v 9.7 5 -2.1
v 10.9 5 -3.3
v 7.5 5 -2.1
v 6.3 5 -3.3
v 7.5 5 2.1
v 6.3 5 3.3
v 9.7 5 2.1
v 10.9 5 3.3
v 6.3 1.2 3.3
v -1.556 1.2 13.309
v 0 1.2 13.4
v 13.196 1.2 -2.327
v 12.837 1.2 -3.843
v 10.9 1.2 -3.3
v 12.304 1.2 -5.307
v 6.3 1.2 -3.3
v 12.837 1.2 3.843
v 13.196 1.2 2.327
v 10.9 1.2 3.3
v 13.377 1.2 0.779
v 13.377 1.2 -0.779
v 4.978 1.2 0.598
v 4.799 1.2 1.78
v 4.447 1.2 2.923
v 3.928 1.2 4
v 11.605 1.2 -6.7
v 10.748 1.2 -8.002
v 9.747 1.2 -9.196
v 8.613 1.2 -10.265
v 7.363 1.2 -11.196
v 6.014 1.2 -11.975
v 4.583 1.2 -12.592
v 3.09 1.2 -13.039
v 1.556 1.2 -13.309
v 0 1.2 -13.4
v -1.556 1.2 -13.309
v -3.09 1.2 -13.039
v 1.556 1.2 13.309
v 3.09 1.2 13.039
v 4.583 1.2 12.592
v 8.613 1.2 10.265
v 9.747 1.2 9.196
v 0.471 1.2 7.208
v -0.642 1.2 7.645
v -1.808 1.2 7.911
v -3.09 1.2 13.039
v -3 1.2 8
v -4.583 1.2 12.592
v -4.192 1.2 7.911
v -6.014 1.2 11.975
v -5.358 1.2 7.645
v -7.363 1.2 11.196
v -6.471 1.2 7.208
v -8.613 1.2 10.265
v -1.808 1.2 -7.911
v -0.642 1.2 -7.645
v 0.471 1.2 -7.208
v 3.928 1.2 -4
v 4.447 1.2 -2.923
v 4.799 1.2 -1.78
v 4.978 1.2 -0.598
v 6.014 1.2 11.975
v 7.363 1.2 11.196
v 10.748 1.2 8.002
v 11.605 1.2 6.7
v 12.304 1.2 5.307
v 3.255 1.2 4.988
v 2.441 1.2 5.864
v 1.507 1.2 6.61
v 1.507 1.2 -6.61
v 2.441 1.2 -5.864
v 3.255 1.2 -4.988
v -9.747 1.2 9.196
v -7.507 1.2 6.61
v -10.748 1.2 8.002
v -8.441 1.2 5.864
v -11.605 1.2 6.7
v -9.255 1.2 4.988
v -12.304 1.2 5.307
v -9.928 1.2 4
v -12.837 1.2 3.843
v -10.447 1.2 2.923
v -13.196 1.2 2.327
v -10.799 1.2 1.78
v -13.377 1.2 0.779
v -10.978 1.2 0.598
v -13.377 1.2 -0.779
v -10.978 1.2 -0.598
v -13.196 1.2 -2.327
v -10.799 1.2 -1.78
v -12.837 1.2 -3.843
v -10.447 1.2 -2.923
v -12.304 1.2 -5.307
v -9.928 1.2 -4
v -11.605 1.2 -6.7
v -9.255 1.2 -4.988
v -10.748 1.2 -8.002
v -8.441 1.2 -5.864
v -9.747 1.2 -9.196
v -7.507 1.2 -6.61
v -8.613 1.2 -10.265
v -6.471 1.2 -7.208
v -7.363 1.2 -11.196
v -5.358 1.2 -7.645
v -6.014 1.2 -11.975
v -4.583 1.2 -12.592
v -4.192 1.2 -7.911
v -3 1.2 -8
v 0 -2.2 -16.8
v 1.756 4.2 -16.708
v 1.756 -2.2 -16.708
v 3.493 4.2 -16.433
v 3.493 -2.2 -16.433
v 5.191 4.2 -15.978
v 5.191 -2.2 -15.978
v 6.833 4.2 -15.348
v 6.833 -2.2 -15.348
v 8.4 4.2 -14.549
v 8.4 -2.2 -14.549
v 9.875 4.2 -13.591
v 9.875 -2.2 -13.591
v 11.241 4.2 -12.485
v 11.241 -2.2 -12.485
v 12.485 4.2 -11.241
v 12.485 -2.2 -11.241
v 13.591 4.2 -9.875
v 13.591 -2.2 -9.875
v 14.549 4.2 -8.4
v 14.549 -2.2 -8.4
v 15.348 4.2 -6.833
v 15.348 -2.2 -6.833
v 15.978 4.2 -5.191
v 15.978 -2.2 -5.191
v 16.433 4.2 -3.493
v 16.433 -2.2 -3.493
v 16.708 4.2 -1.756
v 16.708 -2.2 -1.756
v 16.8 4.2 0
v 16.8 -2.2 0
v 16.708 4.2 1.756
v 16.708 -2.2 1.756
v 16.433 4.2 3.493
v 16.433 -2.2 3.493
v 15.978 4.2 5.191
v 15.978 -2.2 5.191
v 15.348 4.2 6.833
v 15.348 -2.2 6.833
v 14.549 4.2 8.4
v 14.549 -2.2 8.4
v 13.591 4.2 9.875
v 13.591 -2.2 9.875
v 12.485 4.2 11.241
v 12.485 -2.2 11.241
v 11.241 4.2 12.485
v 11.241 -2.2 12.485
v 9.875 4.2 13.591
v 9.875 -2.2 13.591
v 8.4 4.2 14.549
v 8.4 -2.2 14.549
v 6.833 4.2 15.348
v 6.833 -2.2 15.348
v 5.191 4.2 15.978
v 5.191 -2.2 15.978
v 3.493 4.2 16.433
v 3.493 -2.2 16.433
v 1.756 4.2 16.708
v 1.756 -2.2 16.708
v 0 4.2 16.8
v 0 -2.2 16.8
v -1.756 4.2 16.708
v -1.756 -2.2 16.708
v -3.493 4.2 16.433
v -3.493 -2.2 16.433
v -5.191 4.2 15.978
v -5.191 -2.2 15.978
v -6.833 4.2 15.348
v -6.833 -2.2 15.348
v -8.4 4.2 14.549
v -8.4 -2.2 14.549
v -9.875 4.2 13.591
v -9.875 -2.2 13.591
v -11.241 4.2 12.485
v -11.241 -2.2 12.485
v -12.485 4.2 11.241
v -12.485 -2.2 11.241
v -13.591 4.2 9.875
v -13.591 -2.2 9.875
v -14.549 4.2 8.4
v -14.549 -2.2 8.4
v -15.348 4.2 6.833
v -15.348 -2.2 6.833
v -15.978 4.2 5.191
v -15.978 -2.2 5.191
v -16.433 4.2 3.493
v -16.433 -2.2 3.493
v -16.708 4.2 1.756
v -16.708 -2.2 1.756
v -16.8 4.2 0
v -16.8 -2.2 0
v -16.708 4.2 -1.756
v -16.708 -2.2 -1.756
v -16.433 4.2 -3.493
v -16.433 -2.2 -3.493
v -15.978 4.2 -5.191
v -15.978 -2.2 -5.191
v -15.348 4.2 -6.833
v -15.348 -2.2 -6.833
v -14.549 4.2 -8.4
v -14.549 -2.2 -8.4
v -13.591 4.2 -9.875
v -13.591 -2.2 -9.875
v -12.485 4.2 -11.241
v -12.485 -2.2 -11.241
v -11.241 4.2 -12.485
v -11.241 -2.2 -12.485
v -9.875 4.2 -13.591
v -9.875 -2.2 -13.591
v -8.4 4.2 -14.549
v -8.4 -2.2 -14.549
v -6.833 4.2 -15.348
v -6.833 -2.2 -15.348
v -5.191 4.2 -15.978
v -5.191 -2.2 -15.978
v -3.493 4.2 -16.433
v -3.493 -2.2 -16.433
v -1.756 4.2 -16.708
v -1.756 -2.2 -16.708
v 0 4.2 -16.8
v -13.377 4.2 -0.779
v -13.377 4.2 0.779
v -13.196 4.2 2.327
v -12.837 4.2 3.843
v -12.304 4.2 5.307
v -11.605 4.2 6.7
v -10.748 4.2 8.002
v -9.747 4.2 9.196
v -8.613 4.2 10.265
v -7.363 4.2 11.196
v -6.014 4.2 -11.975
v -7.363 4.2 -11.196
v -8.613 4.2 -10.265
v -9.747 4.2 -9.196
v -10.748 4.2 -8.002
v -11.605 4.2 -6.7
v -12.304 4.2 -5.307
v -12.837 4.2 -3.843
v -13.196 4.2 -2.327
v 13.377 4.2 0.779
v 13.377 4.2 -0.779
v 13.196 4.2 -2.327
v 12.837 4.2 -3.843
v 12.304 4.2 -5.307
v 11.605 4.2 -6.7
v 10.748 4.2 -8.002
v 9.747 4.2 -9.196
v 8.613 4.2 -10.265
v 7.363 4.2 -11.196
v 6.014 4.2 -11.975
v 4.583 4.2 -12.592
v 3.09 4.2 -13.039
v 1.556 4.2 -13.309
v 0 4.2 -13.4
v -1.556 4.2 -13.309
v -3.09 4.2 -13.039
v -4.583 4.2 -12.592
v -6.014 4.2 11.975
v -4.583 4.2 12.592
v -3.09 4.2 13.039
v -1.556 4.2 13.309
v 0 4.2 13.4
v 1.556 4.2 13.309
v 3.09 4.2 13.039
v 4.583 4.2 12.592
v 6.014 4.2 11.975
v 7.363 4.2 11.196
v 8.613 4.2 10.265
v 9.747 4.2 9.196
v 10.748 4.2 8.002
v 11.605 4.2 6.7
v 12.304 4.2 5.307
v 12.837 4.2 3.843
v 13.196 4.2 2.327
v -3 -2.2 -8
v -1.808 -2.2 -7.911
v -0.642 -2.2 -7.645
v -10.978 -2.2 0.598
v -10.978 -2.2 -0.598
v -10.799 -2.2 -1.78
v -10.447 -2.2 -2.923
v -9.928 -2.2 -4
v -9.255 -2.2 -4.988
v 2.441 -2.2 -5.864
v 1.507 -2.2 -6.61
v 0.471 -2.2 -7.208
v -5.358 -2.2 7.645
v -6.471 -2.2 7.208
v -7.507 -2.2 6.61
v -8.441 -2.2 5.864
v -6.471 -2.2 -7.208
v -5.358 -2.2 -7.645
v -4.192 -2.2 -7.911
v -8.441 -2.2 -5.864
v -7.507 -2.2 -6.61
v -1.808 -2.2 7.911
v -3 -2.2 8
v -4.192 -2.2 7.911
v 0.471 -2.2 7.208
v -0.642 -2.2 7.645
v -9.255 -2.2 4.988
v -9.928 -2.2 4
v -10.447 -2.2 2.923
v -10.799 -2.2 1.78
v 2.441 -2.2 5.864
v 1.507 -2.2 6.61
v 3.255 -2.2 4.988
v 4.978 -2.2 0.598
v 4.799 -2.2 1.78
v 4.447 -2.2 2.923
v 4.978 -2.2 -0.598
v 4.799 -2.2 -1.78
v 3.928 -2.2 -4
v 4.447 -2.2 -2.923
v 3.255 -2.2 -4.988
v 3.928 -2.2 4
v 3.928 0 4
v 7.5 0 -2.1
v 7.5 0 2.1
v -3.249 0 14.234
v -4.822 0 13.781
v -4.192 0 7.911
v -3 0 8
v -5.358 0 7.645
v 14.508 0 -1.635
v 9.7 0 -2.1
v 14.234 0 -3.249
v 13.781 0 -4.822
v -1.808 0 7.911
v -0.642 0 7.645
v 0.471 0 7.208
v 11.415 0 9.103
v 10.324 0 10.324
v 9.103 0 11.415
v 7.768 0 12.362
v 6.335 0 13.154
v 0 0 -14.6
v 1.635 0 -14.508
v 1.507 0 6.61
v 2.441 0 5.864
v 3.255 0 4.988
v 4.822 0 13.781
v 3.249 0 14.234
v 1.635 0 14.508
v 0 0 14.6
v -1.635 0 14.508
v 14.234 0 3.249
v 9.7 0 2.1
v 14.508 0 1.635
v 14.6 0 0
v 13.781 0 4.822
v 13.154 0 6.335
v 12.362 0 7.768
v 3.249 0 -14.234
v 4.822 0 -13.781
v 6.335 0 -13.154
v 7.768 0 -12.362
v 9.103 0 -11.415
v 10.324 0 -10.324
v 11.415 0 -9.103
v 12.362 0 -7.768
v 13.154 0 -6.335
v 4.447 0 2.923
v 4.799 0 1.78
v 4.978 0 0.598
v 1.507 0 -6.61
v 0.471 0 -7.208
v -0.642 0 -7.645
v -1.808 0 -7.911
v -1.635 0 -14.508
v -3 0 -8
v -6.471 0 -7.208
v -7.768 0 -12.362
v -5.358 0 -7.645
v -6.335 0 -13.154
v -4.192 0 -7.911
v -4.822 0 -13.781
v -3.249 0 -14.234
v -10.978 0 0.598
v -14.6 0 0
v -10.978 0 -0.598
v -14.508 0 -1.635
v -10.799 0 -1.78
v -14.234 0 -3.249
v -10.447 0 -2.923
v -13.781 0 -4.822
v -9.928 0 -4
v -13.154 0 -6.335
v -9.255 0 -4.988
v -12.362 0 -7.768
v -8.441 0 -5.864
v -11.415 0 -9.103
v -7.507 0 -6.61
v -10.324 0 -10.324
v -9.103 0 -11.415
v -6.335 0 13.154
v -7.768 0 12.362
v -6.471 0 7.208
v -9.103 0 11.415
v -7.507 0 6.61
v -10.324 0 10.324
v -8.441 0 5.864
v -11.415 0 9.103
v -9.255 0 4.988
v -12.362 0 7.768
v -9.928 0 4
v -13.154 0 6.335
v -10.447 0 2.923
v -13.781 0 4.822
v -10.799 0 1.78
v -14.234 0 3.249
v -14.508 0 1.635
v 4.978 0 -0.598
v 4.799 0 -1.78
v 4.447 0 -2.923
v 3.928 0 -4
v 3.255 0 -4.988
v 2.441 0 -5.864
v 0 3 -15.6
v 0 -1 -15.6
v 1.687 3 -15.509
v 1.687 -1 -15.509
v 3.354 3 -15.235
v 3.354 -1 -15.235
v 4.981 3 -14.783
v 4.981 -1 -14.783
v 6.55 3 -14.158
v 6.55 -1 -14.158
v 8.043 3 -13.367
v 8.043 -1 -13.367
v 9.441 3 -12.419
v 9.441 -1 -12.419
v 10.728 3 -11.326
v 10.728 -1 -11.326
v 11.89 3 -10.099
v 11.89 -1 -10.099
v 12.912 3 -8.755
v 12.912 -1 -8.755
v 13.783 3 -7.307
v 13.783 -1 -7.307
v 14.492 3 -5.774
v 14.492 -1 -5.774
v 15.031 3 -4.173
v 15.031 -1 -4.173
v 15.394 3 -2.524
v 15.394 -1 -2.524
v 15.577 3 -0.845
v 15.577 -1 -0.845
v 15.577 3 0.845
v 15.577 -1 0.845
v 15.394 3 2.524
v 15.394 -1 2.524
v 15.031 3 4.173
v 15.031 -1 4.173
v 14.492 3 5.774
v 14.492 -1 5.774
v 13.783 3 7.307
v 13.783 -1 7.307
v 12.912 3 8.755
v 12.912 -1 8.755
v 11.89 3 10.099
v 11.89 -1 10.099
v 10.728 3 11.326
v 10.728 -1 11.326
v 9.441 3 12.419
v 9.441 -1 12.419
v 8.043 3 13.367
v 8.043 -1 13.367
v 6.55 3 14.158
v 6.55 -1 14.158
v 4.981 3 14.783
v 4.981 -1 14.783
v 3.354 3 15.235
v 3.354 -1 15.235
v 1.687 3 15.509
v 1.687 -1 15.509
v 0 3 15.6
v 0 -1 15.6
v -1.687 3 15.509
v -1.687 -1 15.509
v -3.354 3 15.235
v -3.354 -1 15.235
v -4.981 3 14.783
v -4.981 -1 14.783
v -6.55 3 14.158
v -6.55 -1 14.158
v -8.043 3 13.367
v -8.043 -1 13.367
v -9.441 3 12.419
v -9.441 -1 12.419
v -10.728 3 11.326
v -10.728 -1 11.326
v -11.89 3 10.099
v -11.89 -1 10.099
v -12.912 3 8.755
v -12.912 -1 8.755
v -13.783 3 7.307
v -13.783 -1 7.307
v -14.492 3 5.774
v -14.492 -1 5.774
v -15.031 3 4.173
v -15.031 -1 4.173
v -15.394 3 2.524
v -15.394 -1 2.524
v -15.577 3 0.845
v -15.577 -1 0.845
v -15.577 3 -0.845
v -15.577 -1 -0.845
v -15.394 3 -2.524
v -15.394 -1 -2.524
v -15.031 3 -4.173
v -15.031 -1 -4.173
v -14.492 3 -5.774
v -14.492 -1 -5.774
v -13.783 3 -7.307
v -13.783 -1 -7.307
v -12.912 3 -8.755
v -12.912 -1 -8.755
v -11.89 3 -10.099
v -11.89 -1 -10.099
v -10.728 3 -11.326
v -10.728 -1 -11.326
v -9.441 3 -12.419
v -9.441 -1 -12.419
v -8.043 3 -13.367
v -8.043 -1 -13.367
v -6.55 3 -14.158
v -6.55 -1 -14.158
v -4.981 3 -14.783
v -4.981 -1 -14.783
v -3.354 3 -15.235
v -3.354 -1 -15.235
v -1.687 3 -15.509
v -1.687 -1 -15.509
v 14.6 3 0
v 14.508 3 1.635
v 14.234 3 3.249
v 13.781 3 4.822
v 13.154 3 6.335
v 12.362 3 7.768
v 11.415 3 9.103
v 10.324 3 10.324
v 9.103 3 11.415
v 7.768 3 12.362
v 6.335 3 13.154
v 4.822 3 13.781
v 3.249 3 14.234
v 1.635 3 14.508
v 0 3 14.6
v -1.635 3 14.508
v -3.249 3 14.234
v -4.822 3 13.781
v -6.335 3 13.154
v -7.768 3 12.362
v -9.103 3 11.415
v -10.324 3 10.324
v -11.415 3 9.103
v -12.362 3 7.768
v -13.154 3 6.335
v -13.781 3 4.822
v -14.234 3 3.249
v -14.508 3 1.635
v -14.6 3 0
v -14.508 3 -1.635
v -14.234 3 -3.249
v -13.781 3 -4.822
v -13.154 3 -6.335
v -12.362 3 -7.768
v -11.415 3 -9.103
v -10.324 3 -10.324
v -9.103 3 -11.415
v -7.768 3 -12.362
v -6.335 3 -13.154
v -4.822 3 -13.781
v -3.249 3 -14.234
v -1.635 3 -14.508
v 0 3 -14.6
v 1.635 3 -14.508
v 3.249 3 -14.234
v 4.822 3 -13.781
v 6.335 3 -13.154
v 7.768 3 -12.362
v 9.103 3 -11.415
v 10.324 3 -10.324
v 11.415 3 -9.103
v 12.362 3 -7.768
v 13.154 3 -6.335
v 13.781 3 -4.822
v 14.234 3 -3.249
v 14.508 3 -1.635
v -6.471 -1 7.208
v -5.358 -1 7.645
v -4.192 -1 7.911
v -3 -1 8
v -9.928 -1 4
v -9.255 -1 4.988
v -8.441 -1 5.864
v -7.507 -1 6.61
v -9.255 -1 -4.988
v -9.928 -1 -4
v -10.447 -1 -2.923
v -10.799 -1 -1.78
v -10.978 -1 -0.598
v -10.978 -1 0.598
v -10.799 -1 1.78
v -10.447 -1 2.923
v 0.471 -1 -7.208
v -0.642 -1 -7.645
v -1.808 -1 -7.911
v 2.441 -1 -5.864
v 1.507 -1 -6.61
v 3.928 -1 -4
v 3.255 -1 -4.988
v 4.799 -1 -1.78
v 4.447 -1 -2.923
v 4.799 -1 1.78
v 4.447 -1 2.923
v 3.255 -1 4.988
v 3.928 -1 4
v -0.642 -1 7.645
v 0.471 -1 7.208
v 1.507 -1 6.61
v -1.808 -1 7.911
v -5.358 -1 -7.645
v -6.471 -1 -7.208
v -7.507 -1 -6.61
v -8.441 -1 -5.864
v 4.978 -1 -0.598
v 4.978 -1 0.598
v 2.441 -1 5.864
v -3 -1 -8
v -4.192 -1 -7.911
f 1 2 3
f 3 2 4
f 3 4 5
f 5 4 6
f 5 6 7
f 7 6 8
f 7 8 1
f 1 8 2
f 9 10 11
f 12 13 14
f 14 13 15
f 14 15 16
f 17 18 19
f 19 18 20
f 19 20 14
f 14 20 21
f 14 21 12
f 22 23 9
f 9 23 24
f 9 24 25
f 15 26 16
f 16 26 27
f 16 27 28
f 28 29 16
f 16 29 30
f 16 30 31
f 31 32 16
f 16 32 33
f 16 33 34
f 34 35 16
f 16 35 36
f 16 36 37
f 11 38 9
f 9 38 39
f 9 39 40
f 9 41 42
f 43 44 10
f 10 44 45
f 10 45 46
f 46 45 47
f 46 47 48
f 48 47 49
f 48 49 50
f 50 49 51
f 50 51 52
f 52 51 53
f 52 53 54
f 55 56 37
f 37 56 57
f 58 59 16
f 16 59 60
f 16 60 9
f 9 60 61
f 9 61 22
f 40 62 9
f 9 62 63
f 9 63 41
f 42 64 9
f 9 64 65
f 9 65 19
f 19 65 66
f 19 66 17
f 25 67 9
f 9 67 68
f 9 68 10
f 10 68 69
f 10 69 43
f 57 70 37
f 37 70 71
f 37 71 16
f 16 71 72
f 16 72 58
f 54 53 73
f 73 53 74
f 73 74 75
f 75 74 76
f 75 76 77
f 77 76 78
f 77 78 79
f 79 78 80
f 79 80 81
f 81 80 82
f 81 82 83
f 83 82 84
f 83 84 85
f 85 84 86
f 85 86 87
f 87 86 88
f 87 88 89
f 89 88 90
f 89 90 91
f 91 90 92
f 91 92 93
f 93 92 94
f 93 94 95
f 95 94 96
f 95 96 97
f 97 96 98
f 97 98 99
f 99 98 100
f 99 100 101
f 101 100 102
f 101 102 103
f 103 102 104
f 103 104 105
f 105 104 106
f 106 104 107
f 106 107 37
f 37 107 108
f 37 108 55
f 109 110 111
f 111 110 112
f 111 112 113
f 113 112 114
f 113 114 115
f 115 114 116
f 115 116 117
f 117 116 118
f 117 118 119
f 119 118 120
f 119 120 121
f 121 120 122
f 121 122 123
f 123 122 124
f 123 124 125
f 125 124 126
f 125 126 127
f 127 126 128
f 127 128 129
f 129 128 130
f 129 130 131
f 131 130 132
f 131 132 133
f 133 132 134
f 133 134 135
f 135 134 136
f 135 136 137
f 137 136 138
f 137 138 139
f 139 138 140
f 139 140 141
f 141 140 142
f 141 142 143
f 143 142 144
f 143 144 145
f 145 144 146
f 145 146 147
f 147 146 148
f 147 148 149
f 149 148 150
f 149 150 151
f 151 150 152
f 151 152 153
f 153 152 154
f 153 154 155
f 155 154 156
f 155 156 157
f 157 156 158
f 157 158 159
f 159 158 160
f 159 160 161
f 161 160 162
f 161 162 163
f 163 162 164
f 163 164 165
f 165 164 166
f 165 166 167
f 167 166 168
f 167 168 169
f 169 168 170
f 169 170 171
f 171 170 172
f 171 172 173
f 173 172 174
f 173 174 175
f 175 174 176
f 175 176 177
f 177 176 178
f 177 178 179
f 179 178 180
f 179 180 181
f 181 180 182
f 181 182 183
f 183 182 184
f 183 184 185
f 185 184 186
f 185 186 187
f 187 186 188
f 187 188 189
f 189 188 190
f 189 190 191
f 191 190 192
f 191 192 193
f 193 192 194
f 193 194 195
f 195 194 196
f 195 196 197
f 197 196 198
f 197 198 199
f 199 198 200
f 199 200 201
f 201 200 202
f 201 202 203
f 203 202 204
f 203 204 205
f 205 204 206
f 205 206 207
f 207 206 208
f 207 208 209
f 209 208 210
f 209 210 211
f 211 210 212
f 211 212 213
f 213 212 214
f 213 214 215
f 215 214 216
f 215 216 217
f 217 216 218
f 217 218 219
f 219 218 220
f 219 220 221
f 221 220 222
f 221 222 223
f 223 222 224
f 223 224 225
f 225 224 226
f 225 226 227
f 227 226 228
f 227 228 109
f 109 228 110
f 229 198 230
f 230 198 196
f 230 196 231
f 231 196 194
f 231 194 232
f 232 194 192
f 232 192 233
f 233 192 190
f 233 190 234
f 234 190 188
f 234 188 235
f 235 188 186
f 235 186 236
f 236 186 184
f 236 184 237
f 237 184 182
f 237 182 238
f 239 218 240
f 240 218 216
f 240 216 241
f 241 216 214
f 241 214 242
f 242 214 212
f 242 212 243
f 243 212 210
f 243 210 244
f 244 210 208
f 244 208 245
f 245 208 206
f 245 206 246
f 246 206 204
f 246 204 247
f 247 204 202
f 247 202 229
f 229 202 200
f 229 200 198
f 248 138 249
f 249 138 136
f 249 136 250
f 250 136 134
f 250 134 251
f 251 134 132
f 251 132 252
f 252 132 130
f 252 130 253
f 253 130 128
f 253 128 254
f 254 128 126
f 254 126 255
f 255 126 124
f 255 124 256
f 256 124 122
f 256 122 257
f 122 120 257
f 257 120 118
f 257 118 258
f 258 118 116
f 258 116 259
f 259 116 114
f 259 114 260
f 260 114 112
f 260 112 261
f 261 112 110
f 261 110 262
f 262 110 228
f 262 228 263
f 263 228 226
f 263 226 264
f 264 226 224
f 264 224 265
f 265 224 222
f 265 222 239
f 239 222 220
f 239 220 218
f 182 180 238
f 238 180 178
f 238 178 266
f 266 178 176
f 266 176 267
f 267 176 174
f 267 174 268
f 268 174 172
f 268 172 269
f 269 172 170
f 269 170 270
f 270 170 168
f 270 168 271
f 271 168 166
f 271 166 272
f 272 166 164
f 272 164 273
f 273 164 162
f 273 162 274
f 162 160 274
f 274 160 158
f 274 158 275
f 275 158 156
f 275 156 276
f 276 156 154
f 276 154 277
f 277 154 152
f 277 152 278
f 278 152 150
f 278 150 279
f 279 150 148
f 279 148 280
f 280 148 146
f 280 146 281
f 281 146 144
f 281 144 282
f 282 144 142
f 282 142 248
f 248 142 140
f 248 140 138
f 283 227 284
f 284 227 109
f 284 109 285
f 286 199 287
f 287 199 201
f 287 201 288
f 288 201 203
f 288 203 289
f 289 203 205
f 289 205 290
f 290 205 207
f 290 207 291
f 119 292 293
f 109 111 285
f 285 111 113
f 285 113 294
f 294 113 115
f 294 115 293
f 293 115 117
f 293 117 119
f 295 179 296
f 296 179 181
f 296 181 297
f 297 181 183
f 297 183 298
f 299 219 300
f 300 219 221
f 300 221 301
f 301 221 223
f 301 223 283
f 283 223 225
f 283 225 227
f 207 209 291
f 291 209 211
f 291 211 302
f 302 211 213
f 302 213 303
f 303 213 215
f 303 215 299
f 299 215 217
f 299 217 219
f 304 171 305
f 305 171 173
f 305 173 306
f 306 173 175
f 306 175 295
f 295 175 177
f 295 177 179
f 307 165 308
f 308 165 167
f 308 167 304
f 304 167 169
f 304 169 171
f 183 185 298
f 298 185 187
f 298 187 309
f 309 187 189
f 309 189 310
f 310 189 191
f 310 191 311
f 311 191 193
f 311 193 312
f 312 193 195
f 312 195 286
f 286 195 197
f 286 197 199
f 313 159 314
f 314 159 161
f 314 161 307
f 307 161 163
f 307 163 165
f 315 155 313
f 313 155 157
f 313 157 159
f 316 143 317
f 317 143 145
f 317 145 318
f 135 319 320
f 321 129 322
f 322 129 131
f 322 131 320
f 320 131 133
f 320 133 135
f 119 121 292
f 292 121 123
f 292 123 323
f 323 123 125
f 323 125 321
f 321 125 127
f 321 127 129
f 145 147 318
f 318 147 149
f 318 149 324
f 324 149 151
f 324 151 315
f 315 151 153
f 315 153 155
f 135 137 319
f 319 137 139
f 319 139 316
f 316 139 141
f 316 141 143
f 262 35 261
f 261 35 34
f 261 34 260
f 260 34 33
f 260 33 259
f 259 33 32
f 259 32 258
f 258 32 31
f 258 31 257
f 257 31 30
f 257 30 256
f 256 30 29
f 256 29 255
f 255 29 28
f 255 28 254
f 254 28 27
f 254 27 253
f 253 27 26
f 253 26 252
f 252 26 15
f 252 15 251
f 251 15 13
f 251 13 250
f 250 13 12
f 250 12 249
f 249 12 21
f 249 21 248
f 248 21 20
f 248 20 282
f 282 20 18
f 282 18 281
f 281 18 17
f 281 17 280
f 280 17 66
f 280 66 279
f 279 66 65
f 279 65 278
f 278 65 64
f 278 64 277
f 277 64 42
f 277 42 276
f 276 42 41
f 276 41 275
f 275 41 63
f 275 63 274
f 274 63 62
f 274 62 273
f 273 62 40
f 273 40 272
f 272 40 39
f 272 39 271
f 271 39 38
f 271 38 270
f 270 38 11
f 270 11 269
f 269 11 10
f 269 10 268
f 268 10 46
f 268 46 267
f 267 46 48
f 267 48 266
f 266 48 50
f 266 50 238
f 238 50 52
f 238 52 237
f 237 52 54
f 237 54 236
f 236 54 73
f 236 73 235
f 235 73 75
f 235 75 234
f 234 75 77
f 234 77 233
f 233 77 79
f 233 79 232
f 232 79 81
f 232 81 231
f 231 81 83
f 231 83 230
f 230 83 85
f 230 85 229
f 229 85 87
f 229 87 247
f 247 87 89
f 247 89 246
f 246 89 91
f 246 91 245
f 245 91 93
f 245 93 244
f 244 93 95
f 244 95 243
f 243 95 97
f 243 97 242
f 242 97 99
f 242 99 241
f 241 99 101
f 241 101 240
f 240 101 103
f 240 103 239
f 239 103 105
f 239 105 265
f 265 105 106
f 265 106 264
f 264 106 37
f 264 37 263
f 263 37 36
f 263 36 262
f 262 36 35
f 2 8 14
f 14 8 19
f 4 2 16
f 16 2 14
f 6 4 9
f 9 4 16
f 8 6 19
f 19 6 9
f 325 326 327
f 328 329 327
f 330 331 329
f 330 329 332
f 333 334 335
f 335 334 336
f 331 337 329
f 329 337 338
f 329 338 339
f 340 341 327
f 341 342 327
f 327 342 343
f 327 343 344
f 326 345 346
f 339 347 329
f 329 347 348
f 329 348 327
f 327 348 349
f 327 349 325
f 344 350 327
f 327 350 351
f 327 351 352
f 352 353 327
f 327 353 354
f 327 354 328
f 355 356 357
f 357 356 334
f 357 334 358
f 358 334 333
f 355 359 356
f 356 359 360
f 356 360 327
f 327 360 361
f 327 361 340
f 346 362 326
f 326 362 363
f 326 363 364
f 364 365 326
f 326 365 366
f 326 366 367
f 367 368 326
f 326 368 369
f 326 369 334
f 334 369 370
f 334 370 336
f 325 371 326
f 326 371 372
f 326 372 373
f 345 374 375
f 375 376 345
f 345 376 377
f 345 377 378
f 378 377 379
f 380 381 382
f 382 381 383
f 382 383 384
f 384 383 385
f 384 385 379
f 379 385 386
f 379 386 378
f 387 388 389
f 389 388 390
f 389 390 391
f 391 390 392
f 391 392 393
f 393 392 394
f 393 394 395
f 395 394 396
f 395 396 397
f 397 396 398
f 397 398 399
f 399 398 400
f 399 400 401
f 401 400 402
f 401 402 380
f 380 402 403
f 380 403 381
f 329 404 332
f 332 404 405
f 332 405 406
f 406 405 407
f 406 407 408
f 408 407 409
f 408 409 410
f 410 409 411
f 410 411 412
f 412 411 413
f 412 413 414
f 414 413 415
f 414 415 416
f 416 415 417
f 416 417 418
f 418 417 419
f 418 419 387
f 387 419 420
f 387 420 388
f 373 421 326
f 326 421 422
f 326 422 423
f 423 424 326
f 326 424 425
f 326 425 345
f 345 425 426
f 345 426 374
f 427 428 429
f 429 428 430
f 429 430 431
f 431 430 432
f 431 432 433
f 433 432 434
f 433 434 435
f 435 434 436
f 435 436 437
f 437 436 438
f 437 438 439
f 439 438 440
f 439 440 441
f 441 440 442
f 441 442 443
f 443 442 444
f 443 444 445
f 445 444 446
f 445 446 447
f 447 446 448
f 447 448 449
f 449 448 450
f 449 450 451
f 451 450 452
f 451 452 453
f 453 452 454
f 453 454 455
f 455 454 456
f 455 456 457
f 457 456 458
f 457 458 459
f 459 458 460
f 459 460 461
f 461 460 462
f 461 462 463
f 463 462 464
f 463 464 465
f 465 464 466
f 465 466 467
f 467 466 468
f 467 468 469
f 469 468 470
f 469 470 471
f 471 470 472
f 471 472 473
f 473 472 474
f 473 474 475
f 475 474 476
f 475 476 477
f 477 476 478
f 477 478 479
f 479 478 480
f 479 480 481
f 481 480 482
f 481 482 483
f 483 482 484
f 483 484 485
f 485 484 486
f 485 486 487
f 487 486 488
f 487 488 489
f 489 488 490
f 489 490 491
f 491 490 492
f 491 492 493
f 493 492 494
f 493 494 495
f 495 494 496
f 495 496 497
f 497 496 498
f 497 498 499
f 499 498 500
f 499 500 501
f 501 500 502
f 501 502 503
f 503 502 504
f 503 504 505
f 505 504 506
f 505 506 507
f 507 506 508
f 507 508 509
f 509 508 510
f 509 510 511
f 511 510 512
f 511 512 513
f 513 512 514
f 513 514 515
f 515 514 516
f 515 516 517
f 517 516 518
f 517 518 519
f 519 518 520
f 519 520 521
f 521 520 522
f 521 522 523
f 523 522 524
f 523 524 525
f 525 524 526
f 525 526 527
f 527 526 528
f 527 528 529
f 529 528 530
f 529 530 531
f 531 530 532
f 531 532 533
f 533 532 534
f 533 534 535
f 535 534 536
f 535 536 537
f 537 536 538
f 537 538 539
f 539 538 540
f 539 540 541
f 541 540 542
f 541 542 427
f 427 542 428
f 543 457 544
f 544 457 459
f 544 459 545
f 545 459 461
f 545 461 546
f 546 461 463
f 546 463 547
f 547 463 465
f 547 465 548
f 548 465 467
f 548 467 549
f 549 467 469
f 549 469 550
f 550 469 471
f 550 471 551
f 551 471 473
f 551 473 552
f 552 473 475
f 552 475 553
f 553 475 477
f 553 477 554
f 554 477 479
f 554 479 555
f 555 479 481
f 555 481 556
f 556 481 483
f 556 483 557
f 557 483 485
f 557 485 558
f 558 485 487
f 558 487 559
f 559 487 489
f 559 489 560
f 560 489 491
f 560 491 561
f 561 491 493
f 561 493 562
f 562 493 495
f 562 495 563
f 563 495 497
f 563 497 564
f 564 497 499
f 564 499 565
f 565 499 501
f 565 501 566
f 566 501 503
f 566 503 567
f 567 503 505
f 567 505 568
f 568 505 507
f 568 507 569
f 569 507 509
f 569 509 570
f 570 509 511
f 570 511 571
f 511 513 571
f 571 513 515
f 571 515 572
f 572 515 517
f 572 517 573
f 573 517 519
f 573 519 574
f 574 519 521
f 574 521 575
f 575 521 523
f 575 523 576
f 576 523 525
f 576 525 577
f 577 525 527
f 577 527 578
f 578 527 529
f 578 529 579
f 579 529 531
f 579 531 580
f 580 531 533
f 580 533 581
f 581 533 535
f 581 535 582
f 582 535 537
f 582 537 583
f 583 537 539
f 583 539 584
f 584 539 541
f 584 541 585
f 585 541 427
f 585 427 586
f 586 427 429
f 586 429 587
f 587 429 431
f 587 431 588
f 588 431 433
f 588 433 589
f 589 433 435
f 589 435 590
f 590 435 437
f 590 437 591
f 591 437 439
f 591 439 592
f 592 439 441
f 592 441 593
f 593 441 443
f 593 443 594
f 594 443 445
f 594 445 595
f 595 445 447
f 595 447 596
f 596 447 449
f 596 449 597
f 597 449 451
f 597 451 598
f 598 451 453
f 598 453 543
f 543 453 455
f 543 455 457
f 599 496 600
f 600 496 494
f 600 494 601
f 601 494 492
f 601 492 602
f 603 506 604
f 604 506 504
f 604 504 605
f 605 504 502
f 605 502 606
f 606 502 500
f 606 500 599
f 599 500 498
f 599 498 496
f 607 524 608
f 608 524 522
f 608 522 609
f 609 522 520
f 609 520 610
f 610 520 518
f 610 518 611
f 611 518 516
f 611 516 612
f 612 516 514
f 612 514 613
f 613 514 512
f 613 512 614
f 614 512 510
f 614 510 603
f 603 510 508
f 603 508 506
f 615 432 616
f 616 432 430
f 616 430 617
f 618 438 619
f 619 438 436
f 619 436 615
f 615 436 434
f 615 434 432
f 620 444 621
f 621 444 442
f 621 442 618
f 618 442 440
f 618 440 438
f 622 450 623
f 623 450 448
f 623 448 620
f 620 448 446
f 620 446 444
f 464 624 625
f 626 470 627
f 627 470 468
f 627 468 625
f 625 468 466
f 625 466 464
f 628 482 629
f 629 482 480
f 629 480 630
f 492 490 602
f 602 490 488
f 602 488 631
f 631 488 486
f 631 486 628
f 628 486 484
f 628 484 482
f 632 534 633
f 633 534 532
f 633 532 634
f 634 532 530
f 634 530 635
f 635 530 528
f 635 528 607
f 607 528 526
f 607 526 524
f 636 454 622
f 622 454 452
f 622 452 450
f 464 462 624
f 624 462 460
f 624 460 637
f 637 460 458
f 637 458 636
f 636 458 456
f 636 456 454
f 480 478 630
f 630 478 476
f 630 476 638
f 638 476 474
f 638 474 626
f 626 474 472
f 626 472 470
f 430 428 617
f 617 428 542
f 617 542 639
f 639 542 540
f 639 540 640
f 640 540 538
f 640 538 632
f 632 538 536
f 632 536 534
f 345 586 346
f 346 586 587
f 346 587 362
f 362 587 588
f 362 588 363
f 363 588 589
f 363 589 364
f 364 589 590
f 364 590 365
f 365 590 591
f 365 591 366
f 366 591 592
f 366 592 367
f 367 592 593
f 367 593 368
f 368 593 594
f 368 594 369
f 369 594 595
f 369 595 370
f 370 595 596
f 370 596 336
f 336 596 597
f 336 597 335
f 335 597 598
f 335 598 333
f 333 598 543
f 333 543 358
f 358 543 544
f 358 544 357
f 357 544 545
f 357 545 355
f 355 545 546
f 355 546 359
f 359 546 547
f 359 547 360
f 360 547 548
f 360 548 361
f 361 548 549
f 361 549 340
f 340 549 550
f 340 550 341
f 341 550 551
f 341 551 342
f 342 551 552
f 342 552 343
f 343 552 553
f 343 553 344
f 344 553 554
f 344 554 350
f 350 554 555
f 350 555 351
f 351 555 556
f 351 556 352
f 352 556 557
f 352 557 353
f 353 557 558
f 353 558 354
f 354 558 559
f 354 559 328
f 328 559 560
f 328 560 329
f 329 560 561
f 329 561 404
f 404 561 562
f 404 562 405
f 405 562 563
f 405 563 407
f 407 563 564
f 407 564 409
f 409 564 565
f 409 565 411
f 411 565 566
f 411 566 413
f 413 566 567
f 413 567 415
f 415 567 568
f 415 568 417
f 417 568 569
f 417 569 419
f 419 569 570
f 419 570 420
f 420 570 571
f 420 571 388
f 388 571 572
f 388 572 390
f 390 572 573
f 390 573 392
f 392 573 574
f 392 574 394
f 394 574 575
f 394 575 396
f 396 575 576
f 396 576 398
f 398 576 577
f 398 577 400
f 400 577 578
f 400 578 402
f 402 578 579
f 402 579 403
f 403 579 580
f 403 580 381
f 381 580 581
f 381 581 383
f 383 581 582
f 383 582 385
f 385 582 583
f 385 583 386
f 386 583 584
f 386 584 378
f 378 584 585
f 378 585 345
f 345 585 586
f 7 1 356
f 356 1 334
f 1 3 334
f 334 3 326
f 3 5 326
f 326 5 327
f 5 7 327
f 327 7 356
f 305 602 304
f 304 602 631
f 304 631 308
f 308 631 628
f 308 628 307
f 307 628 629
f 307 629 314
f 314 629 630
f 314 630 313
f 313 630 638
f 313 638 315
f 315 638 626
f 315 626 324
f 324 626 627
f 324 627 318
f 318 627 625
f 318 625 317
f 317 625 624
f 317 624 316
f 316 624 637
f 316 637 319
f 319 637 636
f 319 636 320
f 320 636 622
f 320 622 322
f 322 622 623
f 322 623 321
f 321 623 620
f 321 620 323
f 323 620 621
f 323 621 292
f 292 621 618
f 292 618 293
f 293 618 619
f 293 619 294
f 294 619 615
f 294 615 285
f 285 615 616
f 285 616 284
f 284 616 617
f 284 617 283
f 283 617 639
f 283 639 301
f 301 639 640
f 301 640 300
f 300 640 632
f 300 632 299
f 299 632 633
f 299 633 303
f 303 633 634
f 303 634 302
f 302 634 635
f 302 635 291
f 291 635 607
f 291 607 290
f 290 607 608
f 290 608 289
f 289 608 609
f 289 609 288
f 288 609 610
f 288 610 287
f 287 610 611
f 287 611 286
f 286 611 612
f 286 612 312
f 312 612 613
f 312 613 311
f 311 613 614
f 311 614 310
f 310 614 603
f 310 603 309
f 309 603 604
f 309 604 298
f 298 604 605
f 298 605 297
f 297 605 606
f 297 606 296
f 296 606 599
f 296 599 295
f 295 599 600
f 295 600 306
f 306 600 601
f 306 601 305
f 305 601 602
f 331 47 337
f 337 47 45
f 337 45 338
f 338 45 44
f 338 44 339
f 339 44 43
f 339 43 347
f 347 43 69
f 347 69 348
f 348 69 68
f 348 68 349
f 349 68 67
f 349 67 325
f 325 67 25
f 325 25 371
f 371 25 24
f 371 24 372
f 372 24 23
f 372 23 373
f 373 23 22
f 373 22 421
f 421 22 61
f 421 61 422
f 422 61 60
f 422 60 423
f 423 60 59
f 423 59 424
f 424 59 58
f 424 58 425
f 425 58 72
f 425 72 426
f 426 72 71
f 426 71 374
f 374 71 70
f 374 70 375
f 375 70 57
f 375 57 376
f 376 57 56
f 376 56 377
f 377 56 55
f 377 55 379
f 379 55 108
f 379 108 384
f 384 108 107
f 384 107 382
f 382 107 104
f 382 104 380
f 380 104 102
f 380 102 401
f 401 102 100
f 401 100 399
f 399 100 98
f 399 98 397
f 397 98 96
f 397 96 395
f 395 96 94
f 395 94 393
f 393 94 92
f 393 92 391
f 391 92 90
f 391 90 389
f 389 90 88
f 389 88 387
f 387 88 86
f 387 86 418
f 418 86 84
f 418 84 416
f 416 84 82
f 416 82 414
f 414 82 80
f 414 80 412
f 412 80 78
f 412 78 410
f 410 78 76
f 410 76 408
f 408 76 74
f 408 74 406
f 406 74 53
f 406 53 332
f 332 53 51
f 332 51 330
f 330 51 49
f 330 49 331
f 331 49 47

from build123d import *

# Parameters (mm, degrees)
SKETCH1_R           = 14.6
BOSS_EXTRUDE1_DEPTH = 3
SHELL2_T            = 1
SKETCH2_W           = 2.2
SKETCH2_H           = 4.2
BOSS_EXTRUDE2_DEPTH = 5
SHELL3_T            = 1.2
SKETCH3_R           = 8
CUT_EXTRUDE1_DEPTH  = 25.06075643


with BuildPart() as part:
    # Sketch1 → Boss-Extrude1 (new body)
    with BuildSketch(Plane(origin=(0, 0, 0), x_dir=(1, 0, 0), z_dir=(0, 1, 0))):
        with Locations(Location((0, 0, 0), (0, 0, 270))):
            Circle(SKETCH1_R)
    extrude(amount=BOSS_EXTRUDE1_DEPTH)

    # Shell2
    shell2_openings = [part.faces().sort_by_distance(p)[0] for p in [
        (0, 3, 0),
    ]]
    offset(amount=SHELL2_T, openings=shell2_openings, kind=Kind.INTERSECTION)

    # Sketch2 → Boss-Extrude2 (add)
    with BuildSketch(Plane(origin=(0, 0, 0), x_dir=(1, 0, 0), z_dir=(0, 1, 0))):
        with Locations((8.6, 0)):
            Rectangle(SKETCH2_W, SKETCH2_H)
    extrude(amount=BOSS_EXTRUDE2_DEPTH)

    # Shell3
    shell3_openings = [part.faces().sort_by_distance(p)[0] for p in [
        (8.6, 5, 0),
    ]]
    offset(amount=SHELL3_T, openings=shell3_openings, kind=Kind.INTERSECTION)

    # Sketch3 → Cut-Extrude1 (cut, through all)
    with BuildSketch(Plane(origin=(0, 1.2, 0), x_dir=(1, 0, 0), z_dir=(0, 1, 0))):
        with Locations(Location((-3, 0, 0), (0, 0, 270))):
            Circle(SKETCH3_R)
    extrude(amount=-CUT_EXTRUDE1_DEPTH, mode=Mode.SUBTRACT)


solid = part.part
